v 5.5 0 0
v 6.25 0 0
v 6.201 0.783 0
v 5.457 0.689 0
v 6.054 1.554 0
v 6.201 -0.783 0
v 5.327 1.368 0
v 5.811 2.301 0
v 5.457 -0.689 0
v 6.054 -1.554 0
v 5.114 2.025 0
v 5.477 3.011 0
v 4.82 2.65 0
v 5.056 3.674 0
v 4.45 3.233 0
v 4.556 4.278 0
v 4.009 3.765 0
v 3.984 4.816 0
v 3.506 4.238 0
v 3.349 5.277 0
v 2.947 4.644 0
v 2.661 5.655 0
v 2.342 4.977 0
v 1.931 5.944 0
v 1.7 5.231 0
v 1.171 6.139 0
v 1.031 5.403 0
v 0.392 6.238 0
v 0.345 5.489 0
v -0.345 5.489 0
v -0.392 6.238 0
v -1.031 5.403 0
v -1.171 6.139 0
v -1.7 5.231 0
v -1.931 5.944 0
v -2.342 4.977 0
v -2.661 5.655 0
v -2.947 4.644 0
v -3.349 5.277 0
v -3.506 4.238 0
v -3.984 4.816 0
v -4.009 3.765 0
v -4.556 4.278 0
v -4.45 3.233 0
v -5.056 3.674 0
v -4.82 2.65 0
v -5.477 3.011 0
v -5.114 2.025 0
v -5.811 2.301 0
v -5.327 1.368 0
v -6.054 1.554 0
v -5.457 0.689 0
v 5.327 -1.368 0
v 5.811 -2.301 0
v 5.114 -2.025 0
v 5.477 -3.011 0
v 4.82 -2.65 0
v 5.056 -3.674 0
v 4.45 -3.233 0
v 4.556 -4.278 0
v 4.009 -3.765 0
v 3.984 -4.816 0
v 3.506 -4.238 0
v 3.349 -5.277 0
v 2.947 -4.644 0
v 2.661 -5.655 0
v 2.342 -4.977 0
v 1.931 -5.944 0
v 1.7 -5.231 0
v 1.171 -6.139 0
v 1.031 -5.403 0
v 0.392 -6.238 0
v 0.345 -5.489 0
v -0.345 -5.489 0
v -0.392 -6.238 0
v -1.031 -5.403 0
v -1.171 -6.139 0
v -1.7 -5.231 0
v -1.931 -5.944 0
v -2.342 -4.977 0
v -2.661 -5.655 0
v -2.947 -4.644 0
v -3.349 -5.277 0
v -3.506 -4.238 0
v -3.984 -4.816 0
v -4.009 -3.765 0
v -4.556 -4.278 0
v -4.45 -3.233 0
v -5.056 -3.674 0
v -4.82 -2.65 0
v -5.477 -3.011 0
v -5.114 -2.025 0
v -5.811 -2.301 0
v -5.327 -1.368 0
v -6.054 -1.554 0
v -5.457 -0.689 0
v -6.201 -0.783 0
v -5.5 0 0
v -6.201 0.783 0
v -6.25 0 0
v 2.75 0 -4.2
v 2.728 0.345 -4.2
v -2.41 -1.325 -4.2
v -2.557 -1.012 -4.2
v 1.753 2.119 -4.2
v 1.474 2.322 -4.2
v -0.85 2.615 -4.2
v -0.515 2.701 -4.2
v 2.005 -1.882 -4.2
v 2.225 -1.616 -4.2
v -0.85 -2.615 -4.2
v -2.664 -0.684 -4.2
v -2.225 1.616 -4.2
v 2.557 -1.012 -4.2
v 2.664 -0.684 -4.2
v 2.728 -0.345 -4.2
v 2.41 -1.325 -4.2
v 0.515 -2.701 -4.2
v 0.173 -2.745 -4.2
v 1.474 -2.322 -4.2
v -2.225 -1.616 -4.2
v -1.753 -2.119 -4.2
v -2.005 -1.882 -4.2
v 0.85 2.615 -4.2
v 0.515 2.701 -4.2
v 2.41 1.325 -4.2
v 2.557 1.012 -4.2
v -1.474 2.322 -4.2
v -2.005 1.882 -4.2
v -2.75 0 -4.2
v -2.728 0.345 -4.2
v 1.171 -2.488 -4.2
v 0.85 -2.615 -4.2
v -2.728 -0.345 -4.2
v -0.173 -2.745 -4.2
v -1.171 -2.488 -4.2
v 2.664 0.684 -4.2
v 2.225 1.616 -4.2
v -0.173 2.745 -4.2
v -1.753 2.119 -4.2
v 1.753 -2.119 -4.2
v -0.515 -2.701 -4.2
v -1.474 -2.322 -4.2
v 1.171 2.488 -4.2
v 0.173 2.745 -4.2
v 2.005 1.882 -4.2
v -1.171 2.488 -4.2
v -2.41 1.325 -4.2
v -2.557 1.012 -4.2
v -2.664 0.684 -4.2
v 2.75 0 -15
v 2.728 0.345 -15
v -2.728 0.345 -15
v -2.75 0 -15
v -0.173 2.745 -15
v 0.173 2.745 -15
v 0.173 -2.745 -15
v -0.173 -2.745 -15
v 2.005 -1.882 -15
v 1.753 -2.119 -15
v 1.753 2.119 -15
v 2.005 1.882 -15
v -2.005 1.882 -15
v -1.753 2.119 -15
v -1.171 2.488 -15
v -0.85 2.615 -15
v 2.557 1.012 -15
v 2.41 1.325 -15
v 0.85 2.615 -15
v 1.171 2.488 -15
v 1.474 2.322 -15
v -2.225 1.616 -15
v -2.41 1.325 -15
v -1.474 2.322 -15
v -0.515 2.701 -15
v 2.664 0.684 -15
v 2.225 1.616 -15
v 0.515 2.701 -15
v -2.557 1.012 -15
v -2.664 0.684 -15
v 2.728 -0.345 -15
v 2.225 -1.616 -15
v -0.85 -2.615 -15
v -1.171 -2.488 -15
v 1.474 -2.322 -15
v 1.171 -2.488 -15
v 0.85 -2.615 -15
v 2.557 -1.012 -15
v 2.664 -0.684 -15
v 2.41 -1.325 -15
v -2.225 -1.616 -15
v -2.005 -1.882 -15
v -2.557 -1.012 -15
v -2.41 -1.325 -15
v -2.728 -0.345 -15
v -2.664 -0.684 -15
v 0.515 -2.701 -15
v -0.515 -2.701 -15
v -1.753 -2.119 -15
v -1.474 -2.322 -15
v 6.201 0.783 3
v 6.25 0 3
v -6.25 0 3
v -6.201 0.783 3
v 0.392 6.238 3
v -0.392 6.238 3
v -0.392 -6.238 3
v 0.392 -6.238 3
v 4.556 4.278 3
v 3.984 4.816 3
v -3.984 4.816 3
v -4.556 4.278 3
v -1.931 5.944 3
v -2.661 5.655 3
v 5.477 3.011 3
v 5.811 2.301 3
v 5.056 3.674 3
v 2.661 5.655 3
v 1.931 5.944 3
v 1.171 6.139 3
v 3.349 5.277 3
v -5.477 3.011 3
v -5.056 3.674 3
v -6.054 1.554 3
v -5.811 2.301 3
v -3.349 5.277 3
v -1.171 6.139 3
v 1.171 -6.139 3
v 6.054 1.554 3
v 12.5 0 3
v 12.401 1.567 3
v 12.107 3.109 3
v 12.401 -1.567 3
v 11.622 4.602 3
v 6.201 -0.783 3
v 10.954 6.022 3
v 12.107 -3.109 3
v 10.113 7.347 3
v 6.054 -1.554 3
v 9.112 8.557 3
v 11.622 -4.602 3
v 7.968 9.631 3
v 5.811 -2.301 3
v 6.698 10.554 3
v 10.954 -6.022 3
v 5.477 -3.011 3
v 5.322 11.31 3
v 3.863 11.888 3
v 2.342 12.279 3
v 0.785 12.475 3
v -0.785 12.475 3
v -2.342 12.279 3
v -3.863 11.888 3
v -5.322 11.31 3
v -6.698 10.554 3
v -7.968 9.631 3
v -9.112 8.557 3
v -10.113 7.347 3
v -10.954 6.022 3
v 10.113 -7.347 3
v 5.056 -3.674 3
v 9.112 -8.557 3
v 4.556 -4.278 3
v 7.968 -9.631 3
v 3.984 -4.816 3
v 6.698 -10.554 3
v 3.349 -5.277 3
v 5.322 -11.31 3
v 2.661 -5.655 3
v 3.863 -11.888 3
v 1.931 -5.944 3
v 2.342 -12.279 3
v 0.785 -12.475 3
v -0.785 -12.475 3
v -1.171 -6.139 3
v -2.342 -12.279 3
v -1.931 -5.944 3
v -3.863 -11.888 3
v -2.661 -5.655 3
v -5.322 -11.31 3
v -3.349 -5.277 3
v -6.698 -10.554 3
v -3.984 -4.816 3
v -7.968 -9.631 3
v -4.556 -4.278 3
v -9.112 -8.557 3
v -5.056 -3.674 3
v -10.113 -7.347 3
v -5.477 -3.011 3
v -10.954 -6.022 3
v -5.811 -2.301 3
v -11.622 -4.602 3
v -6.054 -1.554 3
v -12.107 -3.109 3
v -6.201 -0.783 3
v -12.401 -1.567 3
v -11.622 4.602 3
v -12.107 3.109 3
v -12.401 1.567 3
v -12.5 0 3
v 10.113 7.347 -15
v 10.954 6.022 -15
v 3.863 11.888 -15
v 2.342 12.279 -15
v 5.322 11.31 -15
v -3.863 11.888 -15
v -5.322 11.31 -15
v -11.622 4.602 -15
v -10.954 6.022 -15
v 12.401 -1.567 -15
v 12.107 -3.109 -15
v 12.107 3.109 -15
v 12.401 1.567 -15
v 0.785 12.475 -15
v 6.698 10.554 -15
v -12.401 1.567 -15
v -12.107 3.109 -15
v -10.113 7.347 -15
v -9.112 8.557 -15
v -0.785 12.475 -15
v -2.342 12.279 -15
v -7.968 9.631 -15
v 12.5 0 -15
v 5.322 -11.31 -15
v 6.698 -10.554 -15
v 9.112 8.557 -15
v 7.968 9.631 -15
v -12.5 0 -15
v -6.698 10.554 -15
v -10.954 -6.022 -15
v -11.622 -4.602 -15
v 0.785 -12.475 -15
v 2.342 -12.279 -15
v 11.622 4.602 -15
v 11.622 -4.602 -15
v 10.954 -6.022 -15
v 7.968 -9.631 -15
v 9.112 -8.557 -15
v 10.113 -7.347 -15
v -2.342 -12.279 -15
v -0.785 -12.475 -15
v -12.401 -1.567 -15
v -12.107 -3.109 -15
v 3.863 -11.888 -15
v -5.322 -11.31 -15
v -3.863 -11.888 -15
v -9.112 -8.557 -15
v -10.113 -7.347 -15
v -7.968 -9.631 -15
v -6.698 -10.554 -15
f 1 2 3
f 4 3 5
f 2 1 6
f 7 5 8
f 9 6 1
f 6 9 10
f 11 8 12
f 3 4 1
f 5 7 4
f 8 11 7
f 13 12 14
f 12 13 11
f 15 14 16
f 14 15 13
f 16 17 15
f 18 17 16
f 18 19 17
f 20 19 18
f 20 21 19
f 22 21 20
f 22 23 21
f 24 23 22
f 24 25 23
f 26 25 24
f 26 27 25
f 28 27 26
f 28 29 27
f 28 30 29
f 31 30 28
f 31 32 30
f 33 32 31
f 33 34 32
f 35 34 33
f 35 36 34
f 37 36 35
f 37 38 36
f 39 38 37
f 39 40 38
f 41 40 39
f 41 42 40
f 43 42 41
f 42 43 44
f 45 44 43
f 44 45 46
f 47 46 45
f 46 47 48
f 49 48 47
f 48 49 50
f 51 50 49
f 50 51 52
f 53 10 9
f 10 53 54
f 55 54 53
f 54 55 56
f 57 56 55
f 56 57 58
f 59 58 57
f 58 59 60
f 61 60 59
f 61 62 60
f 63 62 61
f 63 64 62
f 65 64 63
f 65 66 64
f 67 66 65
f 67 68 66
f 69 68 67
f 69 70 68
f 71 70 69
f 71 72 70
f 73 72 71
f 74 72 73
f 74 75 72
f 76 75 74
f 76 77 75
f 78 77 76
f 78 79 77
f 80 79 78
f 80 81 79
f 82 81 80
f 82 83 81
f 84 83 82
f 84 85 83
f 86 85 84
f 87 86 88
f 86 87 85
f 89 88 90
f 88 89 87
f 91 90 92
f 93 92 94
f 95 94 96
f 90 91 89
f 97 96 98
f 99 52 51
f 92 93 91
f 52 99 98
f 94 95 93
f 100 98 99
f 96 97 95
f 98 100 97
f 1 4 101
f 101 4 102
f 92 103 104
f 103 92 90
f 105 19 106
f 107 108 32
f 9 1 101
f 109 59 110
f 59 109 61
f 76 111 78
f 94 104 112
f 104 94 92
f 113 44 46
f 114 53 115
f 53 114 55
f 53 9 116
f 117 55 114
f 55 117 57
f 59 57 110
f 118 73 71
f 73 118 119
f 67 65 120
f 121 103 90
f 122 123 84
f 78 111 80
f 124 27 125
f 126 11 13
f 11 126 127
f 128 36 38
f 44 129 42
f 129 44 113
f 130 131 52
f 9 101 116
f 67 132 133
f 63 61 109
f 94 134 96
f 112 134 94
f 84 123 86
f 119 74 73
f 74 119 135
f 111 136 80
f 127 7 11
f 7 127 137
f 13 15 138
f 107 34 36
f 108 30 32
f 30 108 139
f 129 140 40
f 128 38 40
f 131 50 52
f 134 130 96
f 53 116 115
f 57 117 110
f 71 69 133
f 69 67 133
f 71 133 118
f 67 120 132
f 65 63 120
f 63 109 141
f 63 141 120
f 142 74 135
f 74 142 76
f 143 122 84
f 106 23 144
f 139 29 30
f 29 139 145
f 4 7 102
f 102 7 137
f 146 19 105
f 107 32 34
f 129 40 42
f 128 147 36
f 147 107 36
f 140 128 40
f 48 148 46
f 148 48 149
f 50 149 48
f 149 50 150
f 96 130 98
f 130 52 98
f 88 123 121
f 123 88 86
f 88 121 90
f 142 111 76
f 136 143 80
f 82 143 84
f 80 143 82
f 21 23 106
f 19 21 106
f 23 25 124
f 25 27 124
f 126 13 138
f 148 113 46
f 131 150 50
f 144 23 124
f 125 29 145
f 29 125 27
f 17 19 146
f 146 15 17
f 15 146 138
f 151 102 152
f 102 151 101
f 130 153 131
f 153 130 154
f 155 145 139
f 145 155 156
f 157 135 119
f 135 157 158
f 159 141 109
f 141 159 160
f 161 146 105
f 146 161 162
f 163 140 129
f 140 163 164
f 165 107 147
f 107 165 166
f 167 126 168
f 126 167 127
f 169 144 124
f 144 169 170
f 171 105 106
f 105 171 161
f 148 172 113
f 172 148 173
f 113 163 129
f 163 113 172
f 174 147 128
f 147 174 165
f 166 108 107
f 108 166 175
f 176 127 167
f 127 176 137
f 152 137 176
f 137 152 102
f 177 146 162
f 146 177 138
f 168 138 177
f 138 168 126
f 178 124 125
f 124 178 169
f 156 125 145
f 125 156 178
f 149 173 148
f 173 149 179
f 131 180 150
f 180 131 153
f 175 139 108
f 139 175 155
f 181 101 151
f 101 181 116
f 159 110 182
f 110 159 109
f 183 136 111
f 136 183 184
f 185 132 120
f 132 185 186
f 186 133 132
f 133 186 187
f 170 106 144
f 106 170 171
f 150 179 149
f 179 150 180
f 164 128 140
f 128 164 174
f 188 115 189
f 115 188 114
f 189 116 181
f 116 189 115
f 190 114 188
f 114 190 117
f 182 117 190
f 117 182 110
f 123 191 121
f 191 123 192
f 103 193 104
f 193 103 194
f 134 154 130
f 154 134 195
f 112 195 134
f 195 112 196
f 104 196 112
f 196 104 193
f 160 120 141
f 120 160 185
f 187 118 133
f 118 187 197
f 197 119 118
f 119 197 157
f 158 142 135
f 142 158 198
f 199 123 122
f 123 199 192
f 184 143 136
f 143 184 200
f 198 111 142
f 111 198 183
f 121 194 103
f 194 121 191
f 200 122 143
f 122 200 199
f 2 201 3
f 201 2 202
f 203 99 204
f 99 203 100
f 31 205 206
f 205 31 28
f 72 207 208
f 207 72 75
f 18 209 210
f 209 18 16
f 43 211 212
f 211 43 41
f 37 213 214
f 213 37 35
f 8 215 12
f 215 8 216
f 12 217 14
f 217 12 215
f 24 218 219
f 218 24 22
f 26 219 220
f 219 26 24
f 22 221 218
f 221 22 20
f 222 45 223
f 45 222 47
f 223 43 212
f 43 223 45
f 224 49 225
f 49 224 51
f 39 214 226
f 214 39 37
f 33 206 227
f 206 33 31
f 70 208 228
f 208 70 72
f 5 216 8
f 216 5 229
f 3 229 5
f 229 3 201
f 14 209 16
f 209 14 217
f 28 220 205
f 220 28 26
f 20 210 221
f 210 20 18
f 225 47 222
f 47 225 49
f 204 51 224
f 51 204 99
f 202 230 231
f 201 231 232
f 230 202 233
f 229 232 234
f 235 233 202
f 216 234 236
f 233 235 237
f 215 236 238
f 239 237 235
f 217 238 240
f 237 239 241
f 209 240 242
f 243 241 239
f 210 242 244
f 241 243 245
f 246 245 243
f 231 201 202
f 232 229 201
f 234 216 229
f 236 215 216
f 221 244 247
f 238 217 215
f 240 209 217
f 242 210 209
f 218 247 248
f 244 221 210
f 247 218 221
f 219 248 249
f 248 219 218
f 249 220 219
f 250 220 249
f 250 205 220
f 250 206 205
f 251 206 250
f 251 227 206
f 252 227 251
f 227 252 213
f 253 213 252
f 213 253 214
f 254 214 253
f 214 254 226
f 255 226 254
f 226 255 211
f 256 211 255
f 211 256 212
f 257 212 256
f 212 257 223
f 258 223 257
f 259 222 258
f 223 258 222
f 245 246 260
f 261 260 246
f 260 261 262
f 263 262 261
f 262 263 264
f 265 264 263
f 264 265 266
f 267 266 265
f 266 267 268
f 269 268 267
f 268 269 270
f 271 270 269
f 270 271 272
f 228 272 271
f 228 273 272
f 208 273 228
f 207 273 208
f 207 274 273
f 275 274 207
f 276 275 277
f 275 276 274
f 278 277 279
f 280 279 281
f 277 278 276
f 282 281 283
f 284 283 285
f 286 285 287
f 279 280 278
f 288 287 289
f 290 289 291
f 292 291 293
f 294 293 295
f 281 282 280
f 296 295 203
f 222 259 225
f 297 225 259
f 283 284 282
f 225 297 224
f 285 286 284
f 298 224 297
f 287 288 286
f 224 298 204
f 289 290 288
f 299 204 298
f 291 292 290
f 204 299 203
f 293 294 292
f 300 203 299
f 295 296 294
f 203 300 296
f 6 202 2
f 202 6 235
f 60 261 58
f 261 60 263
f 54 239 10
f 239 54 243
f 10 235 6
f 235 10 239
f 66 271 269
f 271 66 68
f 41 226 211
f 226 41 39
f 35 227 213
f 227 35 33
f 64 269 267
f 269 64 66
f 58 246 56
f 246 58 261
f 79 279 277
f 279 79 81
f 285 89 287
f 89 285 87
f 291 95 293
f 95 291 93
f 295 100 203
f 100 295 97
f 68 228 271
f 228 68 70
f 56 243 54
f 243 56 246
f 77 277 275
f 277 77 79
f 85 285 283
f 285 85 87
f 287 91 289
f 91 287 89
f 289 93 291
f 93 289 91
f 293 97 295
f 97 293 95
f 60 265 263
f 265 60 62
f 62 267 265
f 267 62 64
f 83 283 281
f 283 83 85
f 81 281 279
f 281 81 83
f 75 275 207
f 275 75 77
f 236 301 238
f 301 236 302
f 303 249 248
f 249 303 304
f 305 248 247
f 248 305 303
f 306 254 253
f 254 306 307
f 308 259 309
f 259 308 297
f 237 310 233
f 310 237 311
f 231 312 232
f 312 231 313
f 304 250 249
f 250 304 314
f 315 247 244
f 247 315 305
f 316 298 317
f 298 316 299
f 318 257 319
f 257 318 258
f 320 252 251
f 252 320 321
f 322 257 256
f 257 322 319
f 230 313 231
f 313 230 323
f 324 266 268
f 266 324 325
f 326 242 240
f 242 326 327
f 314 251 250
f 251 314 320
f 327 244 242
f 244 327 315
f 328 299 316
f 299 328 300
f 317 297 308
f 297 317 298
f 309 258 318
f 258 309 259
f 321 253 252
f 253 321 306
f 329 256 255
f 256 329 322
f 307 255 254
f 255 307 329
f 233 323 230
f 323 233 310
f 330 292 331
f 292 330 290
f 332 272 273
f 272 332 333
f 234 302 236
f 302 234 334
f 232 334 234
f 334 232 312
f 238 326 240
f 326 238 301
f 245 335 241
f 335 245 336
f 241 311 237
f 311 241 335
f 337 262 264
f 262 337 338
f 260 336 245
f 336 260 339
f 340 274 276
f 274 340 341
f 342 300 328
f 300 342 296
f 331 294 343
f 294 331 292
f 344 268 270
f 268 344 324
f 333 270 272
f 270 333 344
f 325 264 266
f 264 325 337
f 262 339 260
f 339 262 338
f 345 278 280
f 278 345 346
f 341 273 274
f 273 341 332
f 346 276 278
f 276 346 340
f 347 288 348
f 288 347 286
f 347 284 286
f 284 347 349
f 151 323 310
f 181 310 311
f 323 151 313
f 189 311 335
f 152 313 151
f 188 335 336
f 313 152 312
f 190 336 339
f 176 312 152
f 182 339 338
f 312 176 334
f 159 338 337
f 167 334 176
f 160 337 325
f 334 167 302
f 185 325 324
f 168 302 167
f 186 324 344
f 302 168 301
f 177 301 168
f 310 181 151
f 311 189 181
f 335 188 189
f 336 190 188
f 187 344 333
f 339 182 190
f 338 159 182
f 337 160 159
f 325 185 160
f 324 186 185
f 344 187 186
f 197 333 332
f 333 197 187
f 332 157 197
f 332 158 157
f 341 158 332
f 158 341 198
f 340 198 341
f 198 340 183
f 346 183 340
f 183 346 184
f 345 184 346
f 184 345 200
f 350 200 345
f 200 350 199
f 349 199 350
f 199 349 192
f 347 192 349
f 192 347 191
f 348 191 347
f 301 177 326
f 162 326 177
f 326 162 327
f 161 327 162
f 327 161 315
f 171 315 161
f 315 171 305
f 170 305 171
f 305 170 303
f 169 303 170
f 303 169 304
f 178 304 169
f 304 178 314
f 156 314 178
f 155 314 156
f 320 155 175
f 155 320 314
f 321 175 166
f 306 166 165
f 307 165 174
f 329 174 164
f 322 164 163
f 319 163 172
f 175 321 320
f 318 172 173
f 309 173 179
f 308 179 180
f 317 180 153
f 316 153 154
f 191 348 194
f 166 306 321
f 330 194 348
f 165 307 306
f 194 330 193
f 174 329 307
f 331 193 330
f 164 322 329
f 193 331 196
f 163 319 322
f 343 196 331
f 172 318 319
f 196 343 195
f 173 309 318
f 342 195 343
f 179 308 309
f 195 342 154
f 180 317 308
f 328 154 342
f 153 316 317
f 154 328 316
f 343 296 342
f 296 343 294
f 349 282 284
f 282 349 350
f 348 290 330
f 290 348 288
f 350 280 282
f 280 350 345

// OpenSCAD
$fn = 50;


difference() {
	union() {
		translate(v = [0, 0, -15.0000000000]) {
			cylinder(h = 18, r = 12.5000000000);
		}
	}
	union() {
		translate(v = [0, 0, 0]) {
			rotate(a = [0, 0, 0]) {
				difference() {
					union() {
						translate(v = [0, 0, -18.0000000000]) {
							cylinder(h = 18, r = 2.2500000000);
						}
						translate(v = [0, 0, -4.2000000000]) {
							cylinder(h = 4.2000000000, r1 = 2.7500000000, r2 = 5.5000000000);
						}
						translate(v = [0, 0, -18.0000000000]) {
							cylinder(h = 18, r = 2.7500000000);
						}
						translate(v = [0, 0, -18.0000000000]) {
							cylinder(h = 18, r = 2.2500000000);
						}
					}
					union();
				}
			}
		}
		#cylinder(h = 3, r = 6.2500000000);
	}
}
